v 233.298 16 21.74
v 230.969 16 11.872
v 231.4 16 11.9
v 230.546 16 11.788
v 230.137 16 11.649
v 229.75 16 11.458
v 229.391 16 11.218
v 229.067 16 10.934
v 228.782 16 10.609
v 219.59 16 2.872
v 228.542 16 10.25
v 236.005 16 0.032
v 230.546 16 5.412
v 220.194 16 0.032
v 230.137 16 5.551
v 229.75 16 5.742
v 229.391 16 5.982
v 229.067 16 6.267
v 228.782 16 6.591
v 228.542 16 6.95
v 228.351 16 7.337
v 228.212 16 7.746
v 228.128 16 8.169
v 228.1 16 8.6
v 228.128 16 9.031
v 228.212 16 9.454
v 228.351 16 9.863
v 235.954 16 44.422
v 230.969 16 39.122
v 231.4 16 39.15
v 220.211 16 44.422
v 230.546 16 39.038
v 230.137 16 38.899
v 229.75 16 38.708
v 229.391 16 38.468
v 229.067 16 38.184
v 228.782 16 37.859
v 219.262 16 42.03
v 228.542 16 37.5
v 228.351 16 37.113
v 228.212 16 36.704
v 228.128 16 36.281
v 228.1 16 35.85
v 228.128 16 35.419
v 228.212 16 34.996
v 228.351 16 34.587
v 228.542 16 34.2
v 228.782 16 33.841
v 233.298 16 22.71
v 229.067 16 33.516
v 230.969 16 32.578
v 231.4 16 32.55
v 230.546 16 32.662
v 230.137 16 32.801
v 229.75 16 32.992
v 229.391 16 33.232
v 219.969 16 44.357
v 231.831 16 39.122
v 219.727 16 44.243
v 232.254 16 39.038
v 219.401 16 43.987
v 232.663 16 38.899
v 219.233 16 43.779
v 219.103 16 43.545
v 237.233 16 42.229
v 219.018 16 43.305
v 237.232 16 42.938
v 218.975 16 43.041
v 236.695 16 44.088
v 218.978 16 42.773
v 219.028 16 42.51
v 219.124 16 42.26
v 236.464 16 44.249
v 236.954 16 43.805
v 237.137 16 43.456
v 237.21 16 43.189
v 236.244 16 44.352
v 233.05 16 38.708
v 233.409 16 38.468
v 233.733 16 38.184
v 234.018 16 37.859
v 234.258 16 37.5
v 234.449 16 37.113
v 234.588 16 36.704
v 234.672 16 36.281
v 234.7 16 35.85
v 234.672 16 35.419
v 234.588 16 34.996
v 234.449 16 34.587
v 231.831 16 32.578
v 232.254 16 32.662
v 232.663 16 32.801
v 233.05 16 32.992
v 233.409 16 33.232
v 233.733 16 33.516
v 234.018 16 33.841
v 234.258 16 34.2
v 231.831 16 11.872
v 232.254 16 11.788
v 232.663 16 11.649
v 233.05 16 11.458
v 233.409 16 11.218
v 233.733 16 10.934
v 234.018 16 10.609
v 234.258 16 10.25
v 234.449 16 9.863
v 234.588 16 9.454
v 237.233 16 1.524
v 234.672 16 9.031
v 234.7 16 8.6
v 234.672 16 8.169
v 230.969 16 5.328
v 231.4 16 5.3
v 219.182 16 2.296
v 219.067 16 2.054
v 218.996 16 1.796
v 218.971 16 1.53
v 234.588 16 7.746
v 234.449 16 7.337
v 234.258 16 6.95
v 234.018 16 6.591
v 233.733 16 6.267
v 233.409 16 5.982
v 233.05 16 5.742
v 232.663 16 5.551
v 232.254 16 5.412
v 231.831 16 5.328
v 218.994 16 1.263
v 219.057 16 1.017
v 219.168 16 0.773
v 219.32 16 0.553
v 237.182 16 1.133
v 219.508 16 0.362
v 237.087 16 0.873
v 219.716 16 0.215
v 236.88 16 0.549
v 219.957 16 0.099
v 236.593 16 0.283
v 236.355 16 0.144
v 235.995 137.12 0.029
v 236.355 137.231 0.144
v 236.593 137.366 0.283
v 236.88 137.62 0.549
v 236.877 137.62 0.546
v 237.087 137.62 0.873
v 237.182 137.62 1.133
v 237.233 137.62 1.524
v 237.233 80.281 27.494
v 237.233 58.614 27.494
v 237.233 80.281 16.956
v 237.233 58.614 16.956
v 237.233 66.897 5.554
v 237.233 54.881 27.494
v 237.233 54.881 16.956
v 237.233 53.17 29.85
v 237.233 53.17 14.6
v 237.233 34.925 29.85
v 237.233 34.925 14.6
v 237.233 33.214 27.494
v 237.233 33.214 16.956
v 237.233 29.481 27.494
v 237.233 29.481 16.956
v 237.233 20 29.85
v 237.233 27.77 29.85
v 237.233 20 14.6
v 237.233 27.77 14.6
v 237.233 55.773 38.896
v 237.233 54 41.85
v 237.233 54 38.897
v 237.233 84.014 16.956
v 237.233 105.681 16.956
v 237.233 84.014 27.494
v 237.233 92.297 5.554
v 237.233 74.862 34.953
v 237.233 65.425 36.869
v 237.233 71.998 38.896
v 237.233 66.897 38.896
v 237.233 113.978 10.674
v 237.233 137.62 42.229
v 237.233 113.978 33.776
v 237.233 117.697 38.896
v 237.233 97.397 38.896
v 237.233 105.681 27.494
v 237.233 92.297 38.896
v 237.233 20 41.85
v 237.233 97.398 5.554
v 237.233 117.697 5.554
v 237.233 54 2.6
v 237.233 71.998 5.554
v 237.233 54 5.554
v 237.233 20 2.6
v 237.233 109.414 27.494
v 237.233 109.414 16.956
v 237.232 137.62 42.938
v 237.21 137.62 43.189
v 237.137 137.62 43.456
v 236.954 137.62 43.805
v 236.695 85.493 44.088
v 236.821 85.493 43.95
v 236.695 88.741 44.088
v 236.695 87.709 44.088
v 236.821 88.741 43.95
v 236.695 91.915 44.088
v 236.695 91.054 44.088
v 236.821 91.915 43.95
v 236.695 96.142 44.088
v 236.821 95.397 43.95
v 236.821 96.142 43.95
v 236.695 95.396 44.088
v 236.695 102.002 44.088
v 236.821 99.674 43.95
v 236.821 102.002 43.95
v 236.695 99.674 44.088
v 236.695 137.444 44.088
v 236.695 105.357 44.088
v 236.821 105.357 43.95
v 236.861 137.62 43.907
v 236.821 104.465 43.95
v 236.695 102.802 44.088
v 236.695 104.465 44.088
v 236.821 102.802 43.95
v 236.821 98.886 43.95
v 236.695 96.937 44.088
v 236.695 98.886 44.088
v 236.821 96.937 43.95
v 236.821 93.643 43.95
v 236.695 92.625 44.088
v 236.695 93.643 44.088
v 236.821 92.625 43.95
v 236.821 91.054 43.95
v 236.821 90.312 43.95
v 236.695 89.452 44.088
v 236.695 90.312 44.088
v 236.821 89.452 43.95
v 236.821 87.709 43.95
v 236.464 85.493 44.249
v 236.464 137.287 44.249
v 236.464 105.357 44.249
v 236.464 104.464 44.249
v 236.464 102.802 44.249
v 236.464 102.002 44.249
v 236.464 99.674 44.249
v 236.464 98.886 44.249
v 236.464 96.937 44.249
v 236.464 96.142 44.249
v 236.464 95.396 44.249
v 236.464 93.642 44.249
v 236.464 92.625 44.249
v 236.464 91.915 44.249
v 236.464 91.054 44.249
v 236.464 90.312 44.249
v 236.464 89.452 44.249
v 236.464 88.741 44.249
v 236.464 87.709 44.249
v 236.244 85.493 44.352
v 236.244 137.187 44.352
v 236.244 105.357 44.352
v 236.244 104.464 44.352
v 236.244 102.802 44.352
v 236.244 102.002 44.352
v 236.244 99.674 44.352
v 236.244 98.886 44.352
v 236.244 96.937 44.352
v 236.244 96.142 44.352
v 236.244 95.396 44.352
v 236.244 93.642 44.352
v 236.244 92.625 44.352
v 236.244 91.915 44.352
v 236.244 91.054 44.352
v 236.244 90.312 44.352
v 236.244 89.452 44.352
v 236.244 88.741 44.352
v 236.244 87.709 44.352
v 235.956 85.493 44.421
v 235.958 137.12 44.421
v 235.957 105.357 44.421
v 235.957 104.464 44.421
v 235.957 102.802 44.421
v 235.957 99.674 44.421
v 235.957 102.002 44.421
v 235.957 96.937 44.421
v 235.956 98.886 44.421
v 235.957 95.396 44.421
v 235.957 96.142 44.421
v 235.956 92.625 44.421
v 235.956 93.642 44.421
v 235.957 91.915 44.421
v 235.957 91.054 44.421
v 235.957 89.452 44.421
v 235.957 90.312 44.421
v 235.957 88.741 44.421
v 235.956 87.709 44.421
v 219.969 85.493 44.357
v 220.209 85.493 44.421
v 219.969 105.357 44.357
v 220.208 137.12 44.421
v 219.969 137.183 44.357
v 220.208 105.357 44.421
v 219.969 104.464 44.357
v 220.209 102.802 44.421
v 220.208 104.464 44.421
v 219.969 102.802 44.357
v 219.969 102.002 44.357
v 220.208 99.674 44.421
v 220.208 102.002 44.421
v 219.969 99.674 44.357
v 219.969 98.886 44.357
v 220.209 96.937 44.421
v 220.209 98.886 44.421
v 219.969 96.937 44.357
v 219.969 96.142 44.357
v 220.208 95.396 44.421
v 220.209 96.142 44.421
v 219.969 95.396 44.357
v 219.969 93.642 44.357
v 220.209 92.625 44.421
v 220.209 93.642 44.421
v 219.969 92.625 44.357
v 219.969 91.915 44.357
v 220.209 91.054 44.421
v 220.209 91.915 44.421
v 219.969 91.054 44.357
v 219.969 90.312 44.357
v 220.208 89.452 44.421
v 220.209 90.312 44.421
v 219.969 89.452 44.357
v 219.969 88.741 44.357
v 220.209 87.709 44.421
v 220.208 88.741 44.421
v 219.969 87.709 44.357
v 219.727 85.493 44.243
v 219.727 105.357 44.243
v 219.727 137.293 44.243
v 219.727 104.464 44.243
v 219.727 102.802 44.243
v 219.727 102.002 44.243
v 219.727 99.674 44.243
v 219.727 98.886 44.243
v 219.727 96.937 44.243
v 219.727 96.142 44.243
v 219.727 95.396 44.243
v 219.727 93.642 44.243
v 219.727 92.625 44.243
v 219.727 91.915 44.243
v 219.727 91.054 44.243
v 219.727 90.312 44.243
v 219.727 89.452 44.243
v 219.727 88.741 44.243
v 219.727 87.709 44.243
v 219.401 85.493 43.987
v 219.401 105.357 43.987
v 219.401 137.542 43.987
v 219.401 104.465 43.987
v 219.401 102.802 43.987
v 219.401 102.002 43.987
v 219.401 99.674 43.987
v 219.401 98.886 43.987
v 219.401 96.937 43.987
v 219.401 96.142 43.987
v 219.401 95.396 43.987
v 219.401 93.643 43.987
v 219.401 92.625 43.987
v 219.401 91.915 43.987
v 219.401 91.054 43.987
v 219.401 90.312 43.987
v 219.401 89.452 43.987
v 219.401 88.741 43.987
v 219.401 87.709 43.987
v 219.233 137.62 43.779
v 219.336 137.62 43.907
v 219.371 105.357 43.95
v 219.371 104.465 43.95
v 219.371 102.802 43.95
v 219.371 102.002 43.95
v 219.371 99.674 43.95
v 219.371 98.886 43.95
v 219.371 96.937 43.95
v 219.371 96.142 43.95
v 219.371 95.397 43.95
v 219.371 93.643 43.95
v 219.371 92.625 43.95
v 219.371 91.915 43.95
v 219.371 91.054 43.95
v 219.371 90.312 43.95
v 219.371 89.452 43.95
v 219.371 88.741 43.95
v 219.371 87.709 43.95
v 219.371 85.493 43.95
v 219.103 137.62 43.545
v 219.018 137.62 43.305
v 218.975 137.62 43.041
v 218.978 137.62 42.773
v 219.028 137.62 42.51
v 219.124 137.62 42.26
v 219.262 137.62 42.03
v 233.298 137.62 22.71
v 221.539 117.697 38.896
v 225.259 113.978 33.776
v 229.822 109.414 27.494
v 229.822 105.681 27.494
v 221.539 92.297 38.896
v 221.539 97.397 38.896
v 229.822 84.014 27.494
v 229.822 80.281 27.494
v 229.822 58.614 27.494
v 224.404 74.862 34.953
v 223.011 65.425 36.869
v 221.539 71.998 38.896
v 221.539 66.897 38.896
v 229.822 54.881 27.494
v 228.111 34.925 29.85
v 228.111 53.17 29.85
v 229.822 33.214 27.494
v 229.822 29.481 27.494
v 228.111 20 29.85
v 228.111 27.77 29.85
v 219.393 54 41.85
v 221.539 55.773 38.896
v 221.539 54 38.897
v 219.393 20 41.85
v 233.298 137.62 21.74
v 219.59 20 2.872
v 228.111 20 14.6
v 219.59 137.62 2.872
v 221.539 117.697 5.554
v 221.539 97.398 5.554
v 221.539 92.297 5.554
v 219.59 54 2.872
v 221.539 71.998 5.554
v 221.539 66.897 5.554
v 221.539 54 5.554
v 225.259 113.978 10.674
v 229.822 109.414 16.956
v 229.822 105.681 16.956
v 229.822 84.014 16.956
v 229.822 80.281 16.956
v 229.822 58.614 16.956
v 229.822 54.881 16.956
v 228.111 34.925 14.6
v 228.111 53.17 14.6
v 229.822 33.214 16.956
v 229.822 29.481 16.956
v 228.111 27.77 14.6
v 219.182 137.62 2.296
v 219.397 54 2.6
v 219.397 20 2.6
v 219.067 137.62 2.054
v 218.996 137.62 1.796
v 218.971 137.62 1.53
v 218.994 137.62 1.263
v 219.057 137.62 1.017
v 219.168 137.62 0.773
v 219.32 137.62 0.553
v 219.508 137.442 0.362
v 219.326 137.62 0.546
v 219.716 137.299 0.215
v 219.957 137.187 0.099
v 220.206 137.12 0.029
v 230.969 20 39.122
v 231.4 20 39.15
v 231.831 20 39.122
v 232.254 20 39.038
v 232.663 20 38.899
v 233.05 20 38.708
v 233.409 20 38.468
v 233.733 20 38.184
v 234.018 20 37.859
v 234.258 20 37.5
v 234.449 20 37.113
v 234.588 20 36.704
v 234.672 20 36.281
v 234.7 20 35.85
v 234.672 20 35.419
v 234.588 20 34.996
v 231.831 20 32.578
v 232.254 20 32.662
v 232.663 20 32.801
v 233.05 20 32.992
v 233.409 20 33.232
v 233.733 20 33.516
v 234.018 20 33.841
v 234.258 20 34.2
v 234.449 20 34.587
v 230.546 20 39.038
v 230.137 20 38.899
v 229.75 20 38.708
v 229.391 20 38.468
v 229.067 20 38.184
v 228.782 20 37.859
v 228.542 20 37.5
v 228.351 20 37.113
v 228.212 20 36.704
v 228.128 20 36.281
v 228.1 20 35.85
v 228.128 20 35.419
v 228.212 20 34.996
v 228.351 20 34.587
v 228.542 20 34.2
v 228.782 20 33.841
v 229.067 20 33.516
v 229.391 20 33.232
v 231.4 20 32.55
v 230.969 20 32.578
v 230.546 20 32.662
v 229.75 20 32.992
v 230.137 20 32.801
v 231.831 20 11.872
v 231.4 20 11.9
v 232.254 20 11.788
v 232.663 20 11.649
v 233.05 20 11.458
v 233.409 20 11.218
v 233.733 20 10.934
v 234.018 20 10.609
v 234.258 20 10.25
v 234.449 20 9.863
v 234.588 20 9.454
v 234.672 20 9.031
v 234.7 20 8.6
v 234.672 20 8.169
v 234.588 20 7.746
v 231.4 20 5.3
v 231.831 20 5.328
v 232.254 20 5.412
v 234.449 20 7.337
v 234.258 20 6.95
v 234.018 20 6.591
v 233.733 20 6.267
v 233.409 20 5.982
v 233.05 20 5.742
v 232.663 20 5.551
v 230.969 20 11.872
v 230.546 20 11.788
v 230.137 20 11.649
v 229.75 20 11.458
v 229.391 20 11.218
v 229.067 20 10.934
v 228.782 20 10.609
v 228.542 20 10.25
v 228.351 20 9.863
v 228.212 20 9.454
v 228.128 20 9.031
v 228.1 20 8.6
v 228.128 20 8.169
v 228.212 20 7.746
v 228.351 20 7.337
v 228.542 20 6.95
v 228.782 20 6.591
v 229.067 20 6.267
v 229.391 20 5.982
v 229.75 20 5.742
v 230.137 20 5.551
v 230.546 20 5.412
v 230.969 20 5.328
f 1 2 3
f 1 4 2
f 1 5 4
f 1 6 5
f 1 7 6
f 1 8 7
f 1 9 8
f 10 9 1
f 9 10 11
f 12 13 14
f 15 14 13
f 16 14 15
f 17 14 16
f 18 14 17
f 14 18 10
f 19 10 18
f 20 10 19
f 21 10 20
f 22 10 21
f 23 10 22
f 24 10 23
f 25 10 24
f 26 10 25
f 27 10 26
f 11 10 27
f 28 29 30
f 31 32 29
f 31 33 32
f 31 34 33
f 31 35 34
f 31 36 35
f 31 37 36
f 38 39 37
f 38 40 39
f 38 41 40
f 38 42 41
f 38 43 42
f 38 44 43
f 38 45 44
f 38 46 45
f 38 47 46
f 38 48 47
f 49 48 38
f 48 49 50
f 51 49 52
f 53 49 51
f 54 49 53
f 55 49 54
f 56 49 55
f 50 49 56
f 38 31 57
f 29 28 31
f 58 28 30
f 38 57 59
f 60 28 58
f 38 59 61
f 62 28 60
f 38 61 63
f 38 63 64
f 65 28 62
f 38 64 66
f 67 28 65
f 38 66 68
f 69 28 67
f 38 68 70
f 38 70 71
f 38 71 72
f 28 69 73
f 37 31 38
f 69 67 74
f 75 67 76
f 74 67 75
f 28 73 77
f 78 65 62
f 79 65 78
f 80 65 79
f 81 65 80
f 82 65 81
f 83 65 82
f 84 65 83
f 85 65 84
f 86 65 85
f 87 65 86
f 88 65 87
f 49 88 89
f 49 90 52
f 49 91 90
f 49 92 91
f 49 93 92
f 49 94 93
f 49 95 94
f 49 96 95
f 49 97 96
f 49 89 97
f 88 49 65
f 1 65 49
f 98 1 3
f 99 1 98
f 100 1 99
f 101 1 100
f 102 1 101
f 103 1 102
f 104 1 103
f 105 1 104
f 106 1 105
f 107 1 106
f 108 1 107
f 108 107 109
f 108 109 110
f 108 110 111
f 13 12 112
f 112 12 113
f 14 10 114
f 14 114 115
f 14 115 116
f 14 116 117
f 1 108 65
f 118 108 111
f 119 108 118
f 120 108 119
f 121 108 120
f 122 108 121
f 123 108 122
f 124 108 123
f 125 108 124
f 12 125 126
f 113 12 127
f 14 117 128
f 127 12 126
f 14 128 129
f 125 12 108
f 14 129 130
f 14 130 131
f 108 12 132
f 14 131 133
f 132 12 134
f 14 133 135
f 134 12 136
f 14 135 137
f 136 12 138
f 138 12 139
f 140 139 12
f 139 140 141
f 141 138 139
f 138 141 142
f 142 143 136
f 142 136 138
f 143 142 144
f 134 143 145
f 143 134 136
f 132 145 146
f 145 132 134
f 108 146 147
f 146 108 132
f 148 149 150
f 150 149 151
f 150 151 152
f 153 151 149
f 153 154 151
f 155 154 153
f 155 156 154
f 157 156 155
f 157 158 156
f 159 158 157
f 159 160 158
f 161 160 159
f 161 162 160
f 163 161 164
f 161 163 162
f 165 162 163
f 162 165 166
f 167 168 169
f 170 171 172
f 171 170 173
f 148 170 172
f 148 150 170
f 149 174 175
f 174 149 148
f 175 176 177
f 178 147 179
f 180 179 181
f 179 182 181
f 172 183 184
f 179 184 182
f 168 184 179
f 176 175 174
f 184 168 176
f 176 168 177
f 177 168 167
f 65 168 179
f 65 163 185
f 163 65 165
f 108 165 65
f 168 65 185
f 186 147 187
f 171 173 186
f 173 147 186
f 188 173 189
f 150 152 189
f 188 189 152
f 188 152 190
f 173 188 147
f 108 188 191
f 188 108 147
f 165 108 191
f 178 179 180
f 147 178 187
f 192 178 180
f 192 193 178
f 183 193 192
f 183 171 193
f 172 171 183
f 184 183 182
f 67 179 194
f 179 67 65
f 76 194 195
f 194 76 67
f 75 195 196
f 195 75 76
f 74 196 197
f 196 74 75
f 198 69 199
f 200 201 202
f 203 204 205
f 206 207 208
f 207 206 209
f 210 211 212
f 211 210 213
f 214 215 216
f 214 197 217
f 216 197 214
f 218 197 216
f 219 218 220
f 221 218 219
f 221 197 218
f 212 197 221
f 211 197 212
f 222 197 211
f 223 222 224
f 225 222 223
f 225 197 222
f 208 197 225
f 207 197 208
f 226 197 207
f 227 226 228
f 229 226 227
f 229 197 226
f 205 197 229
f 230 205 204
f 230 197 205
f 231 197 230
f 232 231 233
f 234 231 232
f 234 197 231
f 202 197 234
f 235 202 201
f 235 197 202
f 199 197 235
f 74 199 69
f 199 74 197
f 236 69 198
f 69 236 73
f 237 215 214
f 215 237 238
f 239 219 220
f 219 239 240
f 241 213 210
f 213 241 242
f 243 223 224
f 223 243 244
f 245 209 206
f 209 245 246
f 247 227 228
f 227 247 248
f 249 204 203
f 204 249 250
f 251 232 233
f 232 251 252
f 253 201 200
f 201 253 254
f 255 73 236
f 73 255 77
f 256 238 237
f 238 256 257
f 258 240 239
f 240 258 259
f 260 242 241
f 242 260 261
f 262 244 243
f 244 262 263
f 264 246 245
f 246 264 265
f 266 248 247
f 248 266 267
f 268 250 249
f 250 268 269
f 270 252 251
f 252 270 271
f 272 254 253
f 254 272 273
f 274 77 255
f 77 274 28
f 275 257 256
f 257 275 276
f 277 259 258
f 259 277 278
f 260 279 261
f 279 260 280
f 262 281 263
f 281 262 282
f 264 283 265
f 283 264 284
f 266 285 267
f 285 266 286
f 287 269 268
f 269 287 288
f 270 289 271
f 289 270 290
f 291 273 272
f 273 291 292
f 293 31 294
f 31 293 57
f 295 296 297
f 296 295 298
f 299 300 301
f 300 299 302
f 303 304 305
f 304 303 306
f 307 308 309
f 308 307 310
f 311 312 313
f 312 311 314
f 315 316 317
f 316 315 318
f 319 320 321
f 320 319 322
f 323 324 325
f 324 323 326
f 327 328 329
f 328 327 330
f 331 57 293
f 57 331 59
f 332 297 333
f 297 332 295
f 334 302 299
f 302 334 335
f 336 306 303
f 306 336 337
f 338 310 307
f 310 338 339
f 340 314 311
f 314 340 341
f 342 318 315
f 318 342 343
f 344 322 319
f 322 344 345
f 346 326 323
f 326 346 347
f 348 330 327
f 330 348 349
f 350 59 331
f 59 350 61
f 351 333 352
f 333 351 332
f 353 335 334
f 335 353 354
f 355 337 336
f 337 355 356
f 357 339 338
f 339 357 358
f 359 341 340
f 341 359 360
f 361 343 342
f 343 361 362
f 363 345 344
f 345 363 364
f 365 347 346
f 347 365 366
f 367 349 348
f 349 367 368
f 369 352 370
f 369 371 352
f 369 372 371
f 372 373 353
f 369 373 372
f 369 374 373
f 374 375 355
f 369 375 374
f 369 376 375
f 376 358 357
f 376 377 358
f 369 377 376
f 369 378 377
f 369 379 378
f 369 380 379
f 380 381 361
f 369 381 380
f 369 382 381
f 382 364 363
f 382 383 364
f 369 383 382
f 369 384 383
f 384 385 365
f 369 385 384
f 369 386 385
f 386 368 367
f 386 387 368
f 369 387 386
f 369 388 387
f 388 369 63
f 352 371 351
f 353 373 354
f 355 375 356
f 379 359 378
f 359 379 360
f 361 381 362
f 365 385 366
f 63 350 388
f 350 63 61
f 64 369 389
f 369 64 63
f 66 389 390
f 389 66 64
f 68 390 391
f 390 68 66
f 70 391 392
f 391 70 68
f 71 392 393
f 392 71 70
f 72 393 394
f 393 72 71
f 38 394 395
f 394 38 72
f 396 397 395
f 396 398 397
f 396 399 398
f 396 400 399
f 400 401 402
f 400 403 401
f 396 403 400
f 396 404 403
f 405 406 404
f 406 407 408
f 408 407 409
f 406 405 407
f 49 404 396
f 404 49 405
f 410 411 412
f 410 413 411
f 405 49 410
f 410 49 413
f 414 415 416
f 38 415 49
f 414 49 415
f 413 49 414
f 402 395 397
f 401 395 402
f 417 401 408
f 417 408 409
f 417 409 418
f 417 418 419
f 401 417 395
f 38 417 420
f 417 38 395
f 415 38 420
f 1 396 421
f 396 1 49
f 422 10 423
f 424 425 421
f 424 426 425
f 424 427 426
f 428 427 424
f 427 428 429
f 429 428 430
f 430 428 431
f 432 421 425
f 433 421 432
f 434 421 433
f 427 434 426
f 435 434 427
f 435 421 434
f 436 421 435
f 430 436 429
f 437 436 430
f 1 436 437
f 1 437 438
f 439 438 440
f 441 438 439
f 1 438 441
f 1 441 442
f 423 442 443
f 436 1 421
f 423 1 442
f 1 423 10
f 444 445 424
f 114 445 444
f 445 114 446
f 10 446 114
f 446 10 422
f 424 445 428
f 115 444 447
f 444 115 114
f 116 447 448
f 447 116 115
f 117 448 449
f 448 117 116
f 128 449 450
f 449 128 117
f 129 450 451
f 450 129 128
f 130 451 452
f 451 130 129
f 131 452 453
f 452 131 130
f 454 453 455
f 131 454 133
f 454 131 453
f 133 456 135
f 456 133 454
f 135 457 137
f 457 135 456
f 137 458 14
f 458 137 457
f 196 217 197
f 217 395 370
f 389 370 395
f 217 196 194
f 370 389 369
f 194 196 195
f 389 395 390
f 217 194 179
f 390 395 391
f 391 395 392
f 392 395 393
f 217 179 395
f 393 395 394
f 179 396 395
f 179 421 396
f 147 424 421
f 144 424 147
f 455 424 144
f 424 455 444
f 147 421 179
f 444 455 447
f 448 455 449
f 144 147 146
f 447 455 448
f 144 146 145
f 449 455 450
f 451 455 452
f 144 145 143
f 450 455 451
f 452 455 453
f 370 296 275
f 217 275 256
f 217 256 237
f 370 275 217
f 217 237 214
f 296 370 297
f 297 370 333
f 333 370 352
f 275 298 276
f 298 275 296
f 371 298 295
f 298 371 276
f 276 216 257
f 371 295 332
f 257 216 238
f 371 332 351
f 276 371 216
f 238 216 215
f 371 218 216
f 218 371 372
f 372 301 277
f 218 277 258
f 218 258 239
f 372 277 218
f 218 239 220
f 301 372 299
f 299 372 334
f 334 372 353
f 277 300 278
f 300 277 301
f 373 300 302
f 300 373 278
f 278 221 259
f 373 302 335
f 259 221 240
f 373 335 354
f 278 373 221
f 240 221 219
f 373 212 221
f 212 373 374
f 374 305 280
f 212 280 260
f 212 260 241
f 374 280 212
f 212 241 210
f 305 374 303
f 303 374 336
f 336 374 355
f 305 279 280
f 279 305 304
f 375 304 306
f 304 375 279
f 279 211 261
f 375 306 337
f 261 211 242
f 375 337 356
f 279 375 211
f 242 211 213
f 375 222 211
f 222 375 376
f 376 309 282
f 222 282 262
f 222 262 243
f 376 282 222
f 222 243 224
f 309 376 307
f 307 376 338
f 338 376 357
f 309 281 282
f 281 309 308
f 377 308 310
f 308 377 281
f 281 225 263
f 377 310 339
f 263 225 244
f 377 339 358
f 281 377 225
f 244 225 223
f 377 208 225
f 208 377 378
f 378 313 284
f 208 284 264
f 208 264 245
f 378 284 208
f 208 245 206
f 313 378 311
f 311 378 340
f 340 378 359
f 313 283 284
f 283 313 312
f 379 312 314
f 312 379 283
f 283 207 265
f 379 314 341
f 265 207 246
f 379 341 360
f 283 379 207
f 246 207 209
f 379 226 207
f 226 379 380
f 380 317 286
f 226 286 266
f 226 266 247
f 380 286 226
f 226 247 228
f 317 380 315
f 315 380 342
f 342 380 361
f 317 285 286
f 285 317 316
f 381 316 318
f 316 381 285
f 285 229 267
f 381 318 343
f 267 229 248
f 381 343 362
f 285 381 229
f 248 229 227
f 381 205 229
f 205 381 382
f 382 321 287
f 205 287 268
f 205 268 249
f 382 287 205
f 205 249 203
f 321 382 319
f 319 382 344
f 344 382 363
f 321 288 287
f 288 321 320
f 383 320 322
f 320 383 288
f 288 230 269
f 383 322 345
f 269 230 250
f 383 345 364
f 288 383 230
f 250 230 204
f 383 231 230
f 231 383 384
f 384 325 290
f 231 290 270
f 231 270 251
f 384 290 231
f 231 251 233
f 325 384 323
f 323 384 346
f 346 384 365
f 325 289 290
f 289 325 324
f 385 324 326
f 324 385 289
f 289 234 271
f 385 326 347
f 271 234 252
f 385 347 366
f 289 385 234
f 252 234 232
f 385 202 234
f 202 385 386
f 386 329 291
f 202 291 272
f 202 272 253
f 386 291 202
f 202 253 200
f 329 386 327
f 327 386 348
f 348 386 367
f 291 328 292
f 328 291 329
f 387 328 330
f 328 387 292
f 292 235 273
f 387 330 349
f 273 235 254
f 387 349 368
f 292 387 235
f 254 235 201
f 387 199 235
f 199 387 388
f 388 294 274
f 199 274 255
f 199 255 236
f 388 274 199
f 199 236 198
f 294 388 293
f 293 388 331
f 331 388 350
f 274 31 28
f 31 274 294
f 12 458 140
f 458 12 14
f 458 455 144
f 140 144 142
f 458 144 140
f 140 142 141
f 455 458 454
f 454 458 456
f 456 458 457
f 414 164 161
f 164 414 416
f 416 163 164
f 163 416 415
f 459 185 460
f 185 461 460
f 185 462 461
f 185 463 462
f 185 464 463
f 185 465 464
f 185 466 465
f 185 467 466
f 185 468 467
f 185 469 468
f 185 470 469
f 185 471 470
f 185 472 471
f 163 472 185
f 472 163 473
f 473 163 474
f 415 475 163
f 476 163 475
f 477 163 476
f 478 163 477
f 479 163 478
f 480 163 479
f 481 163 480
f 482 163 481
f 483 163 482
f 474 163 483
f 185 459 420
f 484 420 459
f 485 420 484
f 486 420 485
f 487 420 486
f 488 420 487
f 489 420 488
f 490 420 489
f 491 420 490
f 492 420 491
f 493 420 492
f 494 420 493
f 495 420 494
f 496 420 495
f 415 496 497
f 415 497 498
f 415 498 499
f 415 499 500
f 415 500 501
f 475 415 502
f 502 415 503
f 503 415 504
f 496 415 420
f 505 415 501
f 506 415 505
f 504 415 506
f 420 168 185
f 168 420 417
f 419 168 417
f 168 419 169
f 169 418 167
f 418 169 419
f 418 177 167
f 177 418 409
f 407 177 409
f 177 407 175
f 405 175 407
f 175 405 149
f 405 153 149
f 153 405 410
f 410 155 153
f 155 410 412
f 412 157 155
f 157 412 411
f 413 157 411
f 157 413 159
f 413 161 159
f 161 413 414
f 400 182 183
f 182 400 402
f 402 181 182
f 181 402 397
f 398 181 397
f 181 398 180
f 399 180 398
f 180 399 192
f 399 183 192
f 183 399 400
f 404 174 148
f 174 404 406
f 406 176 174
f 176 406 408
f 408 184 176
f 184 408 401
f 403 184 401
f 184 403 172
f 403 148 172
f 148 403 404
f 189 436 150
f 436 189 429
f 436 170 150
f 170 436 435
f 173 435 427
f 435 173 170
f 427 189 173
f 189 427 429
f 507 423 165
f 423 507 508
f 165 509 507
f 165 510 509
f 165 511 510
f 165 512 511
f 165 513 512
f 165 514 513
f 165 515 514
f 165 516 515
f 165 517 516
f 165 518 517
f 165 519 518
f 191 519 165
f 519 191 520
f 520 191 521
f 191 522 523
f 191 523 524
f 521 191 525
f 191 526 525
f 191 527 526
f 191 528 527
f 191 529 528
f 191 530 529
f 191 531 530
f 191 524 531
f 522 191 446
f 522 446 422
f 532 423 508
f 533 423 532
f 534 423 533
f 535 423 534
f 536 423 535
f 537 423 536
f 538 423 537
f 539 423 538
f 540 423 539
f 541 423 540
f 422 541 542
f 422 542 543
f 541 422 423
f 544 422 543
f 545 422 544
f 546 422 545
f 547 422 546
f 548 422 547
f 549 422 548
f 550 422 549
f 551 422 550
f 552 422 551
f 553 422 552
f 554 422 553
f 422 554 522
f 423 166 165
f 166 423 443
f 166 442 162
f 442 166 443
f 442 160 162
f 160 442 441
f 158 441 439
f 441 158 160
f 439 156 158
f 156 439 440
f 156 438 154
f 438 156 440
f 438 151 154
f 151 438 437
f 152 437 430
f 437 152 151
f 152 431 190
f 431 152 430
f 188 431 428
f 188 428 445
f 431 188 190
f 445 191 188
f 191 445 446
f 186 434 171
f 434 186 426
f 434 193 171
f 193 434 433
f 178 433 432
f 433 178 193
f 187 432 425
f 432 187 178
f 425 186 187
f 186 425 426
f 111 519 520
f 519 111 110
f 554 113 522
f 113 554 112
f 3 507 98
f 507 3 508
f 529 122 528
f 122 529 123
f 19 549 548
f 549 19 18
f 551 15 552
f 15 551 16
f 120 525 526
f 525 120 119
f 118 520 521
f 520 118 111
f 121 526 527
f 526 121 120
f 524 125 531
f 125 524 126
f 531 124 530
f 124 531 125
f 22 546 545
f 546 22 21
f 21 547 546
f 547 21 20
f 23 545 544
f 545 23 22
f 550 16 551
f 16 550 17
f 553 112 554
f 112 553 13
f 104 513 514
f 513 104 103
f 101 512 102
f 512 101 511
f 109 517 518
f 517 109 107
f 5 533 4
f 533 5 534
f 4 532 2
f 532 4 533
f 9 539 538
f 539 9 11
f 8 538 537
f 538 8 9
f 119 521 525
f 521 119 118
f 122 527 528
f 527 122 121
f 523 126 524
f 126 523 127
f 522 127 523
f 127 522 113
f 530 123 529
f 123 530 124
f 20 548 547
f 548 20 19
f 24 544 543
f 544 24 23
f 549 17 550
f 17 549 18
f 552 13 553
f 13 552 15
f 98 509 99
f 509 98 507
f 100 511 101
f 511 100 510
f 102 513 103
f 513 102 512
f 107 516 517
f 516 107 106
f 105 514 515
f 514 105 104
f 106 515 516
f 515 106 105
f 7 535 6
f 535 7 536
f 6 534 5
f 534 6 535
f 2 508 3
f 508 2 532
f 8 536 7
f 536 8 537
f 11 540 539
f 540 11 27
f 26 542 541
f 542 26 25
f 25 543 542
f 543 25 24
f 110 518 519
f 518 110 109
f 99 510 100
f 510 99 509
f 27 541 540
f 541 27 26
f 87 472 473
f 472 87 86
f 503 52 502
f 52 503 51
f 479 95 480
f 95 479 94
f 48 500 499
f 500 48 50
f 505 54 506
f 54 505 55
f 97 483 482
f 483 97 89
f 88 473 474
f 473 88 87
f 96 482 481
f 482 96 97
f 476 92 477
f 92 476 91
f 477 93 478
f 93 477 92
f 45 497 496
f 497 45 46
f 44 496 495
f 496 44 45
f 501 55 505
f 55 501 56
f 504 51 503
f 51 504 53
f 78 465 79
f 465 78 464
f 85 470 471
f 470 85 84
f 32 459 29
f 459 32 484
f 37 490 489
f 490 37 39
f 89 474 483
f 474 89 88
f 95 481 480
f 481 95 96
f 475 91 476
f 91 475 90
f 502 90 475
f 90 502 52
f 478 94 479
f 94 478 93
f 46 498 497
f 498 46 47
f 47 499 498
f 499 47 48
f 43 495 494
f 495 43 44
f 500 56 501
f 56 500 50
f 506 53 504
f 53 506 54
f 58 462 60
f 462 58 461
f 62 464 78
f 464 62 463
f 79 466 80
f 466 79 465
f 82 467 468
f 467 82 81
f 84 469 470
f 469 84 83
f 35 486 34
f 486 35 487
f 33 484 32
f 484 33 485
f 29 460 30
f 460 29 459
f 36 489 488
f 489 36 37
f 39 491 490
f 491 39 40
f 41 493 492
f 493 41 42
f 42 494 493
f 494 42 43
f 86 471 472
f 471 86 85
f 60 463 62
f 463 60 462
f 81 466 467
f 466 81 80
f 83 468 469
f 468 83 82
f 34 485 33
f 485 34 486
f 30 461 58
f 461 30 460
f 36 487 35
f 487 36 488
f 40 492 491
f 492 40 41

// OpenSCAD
difference(){intersection(){translate([0,137.62,0])rotate([90,0,0])linear_extrude(121.62)polygon(points=[[236.24405, 44.35237], [236.46436, 44.24941], [236.69514, 44.08796], [236.95353, 43.80494], [237.13743, 43.45602], [237.2102, 43.18915], [237.2325, 42.93842], [237.233, 42.22858], [237.233, 1.524], [237.18179, 1.13294], [237.08663, 0.87324], [236.87976, 0.54898], [236.59261, 0.28293], [236.35508, 0.14376], [235.98182, 0.02478], [235.709, 0.0], [220.36769, 0.00545], [220.21492, 0.02644], [219.95672, 0.09853], [219.71572, 0.21462], [219.508, 0.36204], [219.32, 0.55257], [219.168, 0.77308], [219.057, 1.01678], [218.9937, 1.26305], [218.9714, 1.52978], [218.996, 1.79633], [219.06671, 2.05447], [219.18161, 2.29624], [219.5904, 2.87187], [233.298, 21.7396], [233.298, 22.7104], [219.262, 42.0302], [219.124, 42.2598], [219.028, 42.51], [218.978, 42.773], [218.975, 43.0408], [219.018, 43.305], [219.10291, 43.54509], [219.23281, 43.77916], [219.40101, 43.98688], [219.727, 44.2426], [219.969, 44.3566], [220.228, 44.4265], [220.48831, 44.44985], [234.72625, 44.45], [235.88351, 44.43884]],paths=[[0, 1, 2, 3, 4, 5, 6, 7, 8, 9, 10, 11, 12, 13, 14, 15, 16, 17, 18, 19, 20, 21, 22, 23, 24, 25, 26, 27, 28, 29, 30, 31, 32, 33, 34, 35, 36, 37, 38, 39, 40, 41, 42, 43, 44, 45, 46]]);
translate([0,0,0])rotate([90,0,90])linear_extrude(254)polygon(points=[[54.8811, 16.9556], [58.6135, 16.9556], [66.89714, 5.55419], [54.0, 5.55428], [54.0, 2.6], [20.0, 2.6], [20.0, 14.6], [27.7697, 14.6], [29.4811, 16.9556], [33.2135, 16.9556], [34.9249, 14.6], [53.1697, 14.6], [16.0, 44.42191], [85.49335, 44.42136], [85.4933, 43.95], [87.70907, 43.95], [87.70933, 44.42141], [88.7409, 44.42121], [88.7409, 43.95], [89.4516, 43.95], [89.4516, 44.42124], [90.31188, 44.42132], [90.31201, 43.95], [91.05419, 43.95], [91.05425, 44.4213], [91.9146, 44.4213], [91.9146, 43.95], [92.6252, 43.95], [92.6252, 44.42138], [93.6419, 44.42139], [93.64287, 43.95], [95.39658, 43.95], [95.39562, 44.4212], [96.14188, 44.42128], [96.14173, 43.95], [96.93727, 43.95], [96.93743, 44.42131], [98.88627, 44.42135], [98.88653, 43.95], [99.67425, 43.95], [99.67424, 44.42118], [102.002, 44.42124], [102.002, 43.95], [102.802, 43.95], [102.802, 44.42127], [104.46434, 44.42123], [104.46478, 43.95], [105.35699, 43.95], [105.35656, 44.42114], [137.12, 44.42102], [137.62, 43.90662], [137.62, 0.54615], [137.12, 0.02895], [16.0, 0.03223], [16.0, 0.24881], [92.29705, 5.55419], [71.99747, 5.55419], [80.2811, 16.9556], [84.0135, 16.9556], [88.57716, 10.67424], [53.1697, 29.85], [54.8811, 27.4944], [58.6135, 27.4944], [65.42475, 36.86932], [66.89704, 38.89584], [55.77292, 38.89584], [54.0, 38.8967], [54.0, 38.91467], [54.0, 41.85], [20.0, 41.85], [20.0, 29.85], [27.7697, 29.85], [29.4811, 27.4944], [33.2135, 27.4944], [34.9249, 29.85], [92.29704, 38.89584], [71.99746, 38.89582], [74.86244, 34.95261], [80.2811, 27.4944], [84.0135, 27.4944], [105.681, 16.9556], [109.09007, 16.9556], [109.414, 16.9556], [113.97761, 10.67424], [117.69691, 5.55419], [97.39747, 5.55419], [100.64056, 10.01795], [117.69667, 38.89584], [97.39746, 38.89582], [105.681, 27.4944], [109.414, 27.4944], [113.97761, 33.77575]],paths=[[0, 1, 2, 3, 4, 5, 6, 7, 8, 9, 10, 11], [12, 13, 14, 15, 16, 17, 18, 19, 20, 21, 22, 23, 24, 25, 26, 27, 28, 29, 30, 31, 32, 33, 34, 35, 36, 37, 38, 39, 40, 41, 42, 43, 44, 45, 46, 47, 48, 49, 50, 51, 52, 53, 54], [55, 56, 57, 58, 59], [60, 61, 62, 63, 64, 65, 66, 67, 68, 69, 70, 71, 72, 73, 74], [75, 76, 77, 78, 79], [80, 81, 82, 83, 84, 85, 86], [87, 88, 89, 90, 91]]);}
for(z=[8.6,35.85])translate([231.4,15,z])rotate([-90,0,0])cylinder(d=6.6,h=5.5,$fn=48);}
